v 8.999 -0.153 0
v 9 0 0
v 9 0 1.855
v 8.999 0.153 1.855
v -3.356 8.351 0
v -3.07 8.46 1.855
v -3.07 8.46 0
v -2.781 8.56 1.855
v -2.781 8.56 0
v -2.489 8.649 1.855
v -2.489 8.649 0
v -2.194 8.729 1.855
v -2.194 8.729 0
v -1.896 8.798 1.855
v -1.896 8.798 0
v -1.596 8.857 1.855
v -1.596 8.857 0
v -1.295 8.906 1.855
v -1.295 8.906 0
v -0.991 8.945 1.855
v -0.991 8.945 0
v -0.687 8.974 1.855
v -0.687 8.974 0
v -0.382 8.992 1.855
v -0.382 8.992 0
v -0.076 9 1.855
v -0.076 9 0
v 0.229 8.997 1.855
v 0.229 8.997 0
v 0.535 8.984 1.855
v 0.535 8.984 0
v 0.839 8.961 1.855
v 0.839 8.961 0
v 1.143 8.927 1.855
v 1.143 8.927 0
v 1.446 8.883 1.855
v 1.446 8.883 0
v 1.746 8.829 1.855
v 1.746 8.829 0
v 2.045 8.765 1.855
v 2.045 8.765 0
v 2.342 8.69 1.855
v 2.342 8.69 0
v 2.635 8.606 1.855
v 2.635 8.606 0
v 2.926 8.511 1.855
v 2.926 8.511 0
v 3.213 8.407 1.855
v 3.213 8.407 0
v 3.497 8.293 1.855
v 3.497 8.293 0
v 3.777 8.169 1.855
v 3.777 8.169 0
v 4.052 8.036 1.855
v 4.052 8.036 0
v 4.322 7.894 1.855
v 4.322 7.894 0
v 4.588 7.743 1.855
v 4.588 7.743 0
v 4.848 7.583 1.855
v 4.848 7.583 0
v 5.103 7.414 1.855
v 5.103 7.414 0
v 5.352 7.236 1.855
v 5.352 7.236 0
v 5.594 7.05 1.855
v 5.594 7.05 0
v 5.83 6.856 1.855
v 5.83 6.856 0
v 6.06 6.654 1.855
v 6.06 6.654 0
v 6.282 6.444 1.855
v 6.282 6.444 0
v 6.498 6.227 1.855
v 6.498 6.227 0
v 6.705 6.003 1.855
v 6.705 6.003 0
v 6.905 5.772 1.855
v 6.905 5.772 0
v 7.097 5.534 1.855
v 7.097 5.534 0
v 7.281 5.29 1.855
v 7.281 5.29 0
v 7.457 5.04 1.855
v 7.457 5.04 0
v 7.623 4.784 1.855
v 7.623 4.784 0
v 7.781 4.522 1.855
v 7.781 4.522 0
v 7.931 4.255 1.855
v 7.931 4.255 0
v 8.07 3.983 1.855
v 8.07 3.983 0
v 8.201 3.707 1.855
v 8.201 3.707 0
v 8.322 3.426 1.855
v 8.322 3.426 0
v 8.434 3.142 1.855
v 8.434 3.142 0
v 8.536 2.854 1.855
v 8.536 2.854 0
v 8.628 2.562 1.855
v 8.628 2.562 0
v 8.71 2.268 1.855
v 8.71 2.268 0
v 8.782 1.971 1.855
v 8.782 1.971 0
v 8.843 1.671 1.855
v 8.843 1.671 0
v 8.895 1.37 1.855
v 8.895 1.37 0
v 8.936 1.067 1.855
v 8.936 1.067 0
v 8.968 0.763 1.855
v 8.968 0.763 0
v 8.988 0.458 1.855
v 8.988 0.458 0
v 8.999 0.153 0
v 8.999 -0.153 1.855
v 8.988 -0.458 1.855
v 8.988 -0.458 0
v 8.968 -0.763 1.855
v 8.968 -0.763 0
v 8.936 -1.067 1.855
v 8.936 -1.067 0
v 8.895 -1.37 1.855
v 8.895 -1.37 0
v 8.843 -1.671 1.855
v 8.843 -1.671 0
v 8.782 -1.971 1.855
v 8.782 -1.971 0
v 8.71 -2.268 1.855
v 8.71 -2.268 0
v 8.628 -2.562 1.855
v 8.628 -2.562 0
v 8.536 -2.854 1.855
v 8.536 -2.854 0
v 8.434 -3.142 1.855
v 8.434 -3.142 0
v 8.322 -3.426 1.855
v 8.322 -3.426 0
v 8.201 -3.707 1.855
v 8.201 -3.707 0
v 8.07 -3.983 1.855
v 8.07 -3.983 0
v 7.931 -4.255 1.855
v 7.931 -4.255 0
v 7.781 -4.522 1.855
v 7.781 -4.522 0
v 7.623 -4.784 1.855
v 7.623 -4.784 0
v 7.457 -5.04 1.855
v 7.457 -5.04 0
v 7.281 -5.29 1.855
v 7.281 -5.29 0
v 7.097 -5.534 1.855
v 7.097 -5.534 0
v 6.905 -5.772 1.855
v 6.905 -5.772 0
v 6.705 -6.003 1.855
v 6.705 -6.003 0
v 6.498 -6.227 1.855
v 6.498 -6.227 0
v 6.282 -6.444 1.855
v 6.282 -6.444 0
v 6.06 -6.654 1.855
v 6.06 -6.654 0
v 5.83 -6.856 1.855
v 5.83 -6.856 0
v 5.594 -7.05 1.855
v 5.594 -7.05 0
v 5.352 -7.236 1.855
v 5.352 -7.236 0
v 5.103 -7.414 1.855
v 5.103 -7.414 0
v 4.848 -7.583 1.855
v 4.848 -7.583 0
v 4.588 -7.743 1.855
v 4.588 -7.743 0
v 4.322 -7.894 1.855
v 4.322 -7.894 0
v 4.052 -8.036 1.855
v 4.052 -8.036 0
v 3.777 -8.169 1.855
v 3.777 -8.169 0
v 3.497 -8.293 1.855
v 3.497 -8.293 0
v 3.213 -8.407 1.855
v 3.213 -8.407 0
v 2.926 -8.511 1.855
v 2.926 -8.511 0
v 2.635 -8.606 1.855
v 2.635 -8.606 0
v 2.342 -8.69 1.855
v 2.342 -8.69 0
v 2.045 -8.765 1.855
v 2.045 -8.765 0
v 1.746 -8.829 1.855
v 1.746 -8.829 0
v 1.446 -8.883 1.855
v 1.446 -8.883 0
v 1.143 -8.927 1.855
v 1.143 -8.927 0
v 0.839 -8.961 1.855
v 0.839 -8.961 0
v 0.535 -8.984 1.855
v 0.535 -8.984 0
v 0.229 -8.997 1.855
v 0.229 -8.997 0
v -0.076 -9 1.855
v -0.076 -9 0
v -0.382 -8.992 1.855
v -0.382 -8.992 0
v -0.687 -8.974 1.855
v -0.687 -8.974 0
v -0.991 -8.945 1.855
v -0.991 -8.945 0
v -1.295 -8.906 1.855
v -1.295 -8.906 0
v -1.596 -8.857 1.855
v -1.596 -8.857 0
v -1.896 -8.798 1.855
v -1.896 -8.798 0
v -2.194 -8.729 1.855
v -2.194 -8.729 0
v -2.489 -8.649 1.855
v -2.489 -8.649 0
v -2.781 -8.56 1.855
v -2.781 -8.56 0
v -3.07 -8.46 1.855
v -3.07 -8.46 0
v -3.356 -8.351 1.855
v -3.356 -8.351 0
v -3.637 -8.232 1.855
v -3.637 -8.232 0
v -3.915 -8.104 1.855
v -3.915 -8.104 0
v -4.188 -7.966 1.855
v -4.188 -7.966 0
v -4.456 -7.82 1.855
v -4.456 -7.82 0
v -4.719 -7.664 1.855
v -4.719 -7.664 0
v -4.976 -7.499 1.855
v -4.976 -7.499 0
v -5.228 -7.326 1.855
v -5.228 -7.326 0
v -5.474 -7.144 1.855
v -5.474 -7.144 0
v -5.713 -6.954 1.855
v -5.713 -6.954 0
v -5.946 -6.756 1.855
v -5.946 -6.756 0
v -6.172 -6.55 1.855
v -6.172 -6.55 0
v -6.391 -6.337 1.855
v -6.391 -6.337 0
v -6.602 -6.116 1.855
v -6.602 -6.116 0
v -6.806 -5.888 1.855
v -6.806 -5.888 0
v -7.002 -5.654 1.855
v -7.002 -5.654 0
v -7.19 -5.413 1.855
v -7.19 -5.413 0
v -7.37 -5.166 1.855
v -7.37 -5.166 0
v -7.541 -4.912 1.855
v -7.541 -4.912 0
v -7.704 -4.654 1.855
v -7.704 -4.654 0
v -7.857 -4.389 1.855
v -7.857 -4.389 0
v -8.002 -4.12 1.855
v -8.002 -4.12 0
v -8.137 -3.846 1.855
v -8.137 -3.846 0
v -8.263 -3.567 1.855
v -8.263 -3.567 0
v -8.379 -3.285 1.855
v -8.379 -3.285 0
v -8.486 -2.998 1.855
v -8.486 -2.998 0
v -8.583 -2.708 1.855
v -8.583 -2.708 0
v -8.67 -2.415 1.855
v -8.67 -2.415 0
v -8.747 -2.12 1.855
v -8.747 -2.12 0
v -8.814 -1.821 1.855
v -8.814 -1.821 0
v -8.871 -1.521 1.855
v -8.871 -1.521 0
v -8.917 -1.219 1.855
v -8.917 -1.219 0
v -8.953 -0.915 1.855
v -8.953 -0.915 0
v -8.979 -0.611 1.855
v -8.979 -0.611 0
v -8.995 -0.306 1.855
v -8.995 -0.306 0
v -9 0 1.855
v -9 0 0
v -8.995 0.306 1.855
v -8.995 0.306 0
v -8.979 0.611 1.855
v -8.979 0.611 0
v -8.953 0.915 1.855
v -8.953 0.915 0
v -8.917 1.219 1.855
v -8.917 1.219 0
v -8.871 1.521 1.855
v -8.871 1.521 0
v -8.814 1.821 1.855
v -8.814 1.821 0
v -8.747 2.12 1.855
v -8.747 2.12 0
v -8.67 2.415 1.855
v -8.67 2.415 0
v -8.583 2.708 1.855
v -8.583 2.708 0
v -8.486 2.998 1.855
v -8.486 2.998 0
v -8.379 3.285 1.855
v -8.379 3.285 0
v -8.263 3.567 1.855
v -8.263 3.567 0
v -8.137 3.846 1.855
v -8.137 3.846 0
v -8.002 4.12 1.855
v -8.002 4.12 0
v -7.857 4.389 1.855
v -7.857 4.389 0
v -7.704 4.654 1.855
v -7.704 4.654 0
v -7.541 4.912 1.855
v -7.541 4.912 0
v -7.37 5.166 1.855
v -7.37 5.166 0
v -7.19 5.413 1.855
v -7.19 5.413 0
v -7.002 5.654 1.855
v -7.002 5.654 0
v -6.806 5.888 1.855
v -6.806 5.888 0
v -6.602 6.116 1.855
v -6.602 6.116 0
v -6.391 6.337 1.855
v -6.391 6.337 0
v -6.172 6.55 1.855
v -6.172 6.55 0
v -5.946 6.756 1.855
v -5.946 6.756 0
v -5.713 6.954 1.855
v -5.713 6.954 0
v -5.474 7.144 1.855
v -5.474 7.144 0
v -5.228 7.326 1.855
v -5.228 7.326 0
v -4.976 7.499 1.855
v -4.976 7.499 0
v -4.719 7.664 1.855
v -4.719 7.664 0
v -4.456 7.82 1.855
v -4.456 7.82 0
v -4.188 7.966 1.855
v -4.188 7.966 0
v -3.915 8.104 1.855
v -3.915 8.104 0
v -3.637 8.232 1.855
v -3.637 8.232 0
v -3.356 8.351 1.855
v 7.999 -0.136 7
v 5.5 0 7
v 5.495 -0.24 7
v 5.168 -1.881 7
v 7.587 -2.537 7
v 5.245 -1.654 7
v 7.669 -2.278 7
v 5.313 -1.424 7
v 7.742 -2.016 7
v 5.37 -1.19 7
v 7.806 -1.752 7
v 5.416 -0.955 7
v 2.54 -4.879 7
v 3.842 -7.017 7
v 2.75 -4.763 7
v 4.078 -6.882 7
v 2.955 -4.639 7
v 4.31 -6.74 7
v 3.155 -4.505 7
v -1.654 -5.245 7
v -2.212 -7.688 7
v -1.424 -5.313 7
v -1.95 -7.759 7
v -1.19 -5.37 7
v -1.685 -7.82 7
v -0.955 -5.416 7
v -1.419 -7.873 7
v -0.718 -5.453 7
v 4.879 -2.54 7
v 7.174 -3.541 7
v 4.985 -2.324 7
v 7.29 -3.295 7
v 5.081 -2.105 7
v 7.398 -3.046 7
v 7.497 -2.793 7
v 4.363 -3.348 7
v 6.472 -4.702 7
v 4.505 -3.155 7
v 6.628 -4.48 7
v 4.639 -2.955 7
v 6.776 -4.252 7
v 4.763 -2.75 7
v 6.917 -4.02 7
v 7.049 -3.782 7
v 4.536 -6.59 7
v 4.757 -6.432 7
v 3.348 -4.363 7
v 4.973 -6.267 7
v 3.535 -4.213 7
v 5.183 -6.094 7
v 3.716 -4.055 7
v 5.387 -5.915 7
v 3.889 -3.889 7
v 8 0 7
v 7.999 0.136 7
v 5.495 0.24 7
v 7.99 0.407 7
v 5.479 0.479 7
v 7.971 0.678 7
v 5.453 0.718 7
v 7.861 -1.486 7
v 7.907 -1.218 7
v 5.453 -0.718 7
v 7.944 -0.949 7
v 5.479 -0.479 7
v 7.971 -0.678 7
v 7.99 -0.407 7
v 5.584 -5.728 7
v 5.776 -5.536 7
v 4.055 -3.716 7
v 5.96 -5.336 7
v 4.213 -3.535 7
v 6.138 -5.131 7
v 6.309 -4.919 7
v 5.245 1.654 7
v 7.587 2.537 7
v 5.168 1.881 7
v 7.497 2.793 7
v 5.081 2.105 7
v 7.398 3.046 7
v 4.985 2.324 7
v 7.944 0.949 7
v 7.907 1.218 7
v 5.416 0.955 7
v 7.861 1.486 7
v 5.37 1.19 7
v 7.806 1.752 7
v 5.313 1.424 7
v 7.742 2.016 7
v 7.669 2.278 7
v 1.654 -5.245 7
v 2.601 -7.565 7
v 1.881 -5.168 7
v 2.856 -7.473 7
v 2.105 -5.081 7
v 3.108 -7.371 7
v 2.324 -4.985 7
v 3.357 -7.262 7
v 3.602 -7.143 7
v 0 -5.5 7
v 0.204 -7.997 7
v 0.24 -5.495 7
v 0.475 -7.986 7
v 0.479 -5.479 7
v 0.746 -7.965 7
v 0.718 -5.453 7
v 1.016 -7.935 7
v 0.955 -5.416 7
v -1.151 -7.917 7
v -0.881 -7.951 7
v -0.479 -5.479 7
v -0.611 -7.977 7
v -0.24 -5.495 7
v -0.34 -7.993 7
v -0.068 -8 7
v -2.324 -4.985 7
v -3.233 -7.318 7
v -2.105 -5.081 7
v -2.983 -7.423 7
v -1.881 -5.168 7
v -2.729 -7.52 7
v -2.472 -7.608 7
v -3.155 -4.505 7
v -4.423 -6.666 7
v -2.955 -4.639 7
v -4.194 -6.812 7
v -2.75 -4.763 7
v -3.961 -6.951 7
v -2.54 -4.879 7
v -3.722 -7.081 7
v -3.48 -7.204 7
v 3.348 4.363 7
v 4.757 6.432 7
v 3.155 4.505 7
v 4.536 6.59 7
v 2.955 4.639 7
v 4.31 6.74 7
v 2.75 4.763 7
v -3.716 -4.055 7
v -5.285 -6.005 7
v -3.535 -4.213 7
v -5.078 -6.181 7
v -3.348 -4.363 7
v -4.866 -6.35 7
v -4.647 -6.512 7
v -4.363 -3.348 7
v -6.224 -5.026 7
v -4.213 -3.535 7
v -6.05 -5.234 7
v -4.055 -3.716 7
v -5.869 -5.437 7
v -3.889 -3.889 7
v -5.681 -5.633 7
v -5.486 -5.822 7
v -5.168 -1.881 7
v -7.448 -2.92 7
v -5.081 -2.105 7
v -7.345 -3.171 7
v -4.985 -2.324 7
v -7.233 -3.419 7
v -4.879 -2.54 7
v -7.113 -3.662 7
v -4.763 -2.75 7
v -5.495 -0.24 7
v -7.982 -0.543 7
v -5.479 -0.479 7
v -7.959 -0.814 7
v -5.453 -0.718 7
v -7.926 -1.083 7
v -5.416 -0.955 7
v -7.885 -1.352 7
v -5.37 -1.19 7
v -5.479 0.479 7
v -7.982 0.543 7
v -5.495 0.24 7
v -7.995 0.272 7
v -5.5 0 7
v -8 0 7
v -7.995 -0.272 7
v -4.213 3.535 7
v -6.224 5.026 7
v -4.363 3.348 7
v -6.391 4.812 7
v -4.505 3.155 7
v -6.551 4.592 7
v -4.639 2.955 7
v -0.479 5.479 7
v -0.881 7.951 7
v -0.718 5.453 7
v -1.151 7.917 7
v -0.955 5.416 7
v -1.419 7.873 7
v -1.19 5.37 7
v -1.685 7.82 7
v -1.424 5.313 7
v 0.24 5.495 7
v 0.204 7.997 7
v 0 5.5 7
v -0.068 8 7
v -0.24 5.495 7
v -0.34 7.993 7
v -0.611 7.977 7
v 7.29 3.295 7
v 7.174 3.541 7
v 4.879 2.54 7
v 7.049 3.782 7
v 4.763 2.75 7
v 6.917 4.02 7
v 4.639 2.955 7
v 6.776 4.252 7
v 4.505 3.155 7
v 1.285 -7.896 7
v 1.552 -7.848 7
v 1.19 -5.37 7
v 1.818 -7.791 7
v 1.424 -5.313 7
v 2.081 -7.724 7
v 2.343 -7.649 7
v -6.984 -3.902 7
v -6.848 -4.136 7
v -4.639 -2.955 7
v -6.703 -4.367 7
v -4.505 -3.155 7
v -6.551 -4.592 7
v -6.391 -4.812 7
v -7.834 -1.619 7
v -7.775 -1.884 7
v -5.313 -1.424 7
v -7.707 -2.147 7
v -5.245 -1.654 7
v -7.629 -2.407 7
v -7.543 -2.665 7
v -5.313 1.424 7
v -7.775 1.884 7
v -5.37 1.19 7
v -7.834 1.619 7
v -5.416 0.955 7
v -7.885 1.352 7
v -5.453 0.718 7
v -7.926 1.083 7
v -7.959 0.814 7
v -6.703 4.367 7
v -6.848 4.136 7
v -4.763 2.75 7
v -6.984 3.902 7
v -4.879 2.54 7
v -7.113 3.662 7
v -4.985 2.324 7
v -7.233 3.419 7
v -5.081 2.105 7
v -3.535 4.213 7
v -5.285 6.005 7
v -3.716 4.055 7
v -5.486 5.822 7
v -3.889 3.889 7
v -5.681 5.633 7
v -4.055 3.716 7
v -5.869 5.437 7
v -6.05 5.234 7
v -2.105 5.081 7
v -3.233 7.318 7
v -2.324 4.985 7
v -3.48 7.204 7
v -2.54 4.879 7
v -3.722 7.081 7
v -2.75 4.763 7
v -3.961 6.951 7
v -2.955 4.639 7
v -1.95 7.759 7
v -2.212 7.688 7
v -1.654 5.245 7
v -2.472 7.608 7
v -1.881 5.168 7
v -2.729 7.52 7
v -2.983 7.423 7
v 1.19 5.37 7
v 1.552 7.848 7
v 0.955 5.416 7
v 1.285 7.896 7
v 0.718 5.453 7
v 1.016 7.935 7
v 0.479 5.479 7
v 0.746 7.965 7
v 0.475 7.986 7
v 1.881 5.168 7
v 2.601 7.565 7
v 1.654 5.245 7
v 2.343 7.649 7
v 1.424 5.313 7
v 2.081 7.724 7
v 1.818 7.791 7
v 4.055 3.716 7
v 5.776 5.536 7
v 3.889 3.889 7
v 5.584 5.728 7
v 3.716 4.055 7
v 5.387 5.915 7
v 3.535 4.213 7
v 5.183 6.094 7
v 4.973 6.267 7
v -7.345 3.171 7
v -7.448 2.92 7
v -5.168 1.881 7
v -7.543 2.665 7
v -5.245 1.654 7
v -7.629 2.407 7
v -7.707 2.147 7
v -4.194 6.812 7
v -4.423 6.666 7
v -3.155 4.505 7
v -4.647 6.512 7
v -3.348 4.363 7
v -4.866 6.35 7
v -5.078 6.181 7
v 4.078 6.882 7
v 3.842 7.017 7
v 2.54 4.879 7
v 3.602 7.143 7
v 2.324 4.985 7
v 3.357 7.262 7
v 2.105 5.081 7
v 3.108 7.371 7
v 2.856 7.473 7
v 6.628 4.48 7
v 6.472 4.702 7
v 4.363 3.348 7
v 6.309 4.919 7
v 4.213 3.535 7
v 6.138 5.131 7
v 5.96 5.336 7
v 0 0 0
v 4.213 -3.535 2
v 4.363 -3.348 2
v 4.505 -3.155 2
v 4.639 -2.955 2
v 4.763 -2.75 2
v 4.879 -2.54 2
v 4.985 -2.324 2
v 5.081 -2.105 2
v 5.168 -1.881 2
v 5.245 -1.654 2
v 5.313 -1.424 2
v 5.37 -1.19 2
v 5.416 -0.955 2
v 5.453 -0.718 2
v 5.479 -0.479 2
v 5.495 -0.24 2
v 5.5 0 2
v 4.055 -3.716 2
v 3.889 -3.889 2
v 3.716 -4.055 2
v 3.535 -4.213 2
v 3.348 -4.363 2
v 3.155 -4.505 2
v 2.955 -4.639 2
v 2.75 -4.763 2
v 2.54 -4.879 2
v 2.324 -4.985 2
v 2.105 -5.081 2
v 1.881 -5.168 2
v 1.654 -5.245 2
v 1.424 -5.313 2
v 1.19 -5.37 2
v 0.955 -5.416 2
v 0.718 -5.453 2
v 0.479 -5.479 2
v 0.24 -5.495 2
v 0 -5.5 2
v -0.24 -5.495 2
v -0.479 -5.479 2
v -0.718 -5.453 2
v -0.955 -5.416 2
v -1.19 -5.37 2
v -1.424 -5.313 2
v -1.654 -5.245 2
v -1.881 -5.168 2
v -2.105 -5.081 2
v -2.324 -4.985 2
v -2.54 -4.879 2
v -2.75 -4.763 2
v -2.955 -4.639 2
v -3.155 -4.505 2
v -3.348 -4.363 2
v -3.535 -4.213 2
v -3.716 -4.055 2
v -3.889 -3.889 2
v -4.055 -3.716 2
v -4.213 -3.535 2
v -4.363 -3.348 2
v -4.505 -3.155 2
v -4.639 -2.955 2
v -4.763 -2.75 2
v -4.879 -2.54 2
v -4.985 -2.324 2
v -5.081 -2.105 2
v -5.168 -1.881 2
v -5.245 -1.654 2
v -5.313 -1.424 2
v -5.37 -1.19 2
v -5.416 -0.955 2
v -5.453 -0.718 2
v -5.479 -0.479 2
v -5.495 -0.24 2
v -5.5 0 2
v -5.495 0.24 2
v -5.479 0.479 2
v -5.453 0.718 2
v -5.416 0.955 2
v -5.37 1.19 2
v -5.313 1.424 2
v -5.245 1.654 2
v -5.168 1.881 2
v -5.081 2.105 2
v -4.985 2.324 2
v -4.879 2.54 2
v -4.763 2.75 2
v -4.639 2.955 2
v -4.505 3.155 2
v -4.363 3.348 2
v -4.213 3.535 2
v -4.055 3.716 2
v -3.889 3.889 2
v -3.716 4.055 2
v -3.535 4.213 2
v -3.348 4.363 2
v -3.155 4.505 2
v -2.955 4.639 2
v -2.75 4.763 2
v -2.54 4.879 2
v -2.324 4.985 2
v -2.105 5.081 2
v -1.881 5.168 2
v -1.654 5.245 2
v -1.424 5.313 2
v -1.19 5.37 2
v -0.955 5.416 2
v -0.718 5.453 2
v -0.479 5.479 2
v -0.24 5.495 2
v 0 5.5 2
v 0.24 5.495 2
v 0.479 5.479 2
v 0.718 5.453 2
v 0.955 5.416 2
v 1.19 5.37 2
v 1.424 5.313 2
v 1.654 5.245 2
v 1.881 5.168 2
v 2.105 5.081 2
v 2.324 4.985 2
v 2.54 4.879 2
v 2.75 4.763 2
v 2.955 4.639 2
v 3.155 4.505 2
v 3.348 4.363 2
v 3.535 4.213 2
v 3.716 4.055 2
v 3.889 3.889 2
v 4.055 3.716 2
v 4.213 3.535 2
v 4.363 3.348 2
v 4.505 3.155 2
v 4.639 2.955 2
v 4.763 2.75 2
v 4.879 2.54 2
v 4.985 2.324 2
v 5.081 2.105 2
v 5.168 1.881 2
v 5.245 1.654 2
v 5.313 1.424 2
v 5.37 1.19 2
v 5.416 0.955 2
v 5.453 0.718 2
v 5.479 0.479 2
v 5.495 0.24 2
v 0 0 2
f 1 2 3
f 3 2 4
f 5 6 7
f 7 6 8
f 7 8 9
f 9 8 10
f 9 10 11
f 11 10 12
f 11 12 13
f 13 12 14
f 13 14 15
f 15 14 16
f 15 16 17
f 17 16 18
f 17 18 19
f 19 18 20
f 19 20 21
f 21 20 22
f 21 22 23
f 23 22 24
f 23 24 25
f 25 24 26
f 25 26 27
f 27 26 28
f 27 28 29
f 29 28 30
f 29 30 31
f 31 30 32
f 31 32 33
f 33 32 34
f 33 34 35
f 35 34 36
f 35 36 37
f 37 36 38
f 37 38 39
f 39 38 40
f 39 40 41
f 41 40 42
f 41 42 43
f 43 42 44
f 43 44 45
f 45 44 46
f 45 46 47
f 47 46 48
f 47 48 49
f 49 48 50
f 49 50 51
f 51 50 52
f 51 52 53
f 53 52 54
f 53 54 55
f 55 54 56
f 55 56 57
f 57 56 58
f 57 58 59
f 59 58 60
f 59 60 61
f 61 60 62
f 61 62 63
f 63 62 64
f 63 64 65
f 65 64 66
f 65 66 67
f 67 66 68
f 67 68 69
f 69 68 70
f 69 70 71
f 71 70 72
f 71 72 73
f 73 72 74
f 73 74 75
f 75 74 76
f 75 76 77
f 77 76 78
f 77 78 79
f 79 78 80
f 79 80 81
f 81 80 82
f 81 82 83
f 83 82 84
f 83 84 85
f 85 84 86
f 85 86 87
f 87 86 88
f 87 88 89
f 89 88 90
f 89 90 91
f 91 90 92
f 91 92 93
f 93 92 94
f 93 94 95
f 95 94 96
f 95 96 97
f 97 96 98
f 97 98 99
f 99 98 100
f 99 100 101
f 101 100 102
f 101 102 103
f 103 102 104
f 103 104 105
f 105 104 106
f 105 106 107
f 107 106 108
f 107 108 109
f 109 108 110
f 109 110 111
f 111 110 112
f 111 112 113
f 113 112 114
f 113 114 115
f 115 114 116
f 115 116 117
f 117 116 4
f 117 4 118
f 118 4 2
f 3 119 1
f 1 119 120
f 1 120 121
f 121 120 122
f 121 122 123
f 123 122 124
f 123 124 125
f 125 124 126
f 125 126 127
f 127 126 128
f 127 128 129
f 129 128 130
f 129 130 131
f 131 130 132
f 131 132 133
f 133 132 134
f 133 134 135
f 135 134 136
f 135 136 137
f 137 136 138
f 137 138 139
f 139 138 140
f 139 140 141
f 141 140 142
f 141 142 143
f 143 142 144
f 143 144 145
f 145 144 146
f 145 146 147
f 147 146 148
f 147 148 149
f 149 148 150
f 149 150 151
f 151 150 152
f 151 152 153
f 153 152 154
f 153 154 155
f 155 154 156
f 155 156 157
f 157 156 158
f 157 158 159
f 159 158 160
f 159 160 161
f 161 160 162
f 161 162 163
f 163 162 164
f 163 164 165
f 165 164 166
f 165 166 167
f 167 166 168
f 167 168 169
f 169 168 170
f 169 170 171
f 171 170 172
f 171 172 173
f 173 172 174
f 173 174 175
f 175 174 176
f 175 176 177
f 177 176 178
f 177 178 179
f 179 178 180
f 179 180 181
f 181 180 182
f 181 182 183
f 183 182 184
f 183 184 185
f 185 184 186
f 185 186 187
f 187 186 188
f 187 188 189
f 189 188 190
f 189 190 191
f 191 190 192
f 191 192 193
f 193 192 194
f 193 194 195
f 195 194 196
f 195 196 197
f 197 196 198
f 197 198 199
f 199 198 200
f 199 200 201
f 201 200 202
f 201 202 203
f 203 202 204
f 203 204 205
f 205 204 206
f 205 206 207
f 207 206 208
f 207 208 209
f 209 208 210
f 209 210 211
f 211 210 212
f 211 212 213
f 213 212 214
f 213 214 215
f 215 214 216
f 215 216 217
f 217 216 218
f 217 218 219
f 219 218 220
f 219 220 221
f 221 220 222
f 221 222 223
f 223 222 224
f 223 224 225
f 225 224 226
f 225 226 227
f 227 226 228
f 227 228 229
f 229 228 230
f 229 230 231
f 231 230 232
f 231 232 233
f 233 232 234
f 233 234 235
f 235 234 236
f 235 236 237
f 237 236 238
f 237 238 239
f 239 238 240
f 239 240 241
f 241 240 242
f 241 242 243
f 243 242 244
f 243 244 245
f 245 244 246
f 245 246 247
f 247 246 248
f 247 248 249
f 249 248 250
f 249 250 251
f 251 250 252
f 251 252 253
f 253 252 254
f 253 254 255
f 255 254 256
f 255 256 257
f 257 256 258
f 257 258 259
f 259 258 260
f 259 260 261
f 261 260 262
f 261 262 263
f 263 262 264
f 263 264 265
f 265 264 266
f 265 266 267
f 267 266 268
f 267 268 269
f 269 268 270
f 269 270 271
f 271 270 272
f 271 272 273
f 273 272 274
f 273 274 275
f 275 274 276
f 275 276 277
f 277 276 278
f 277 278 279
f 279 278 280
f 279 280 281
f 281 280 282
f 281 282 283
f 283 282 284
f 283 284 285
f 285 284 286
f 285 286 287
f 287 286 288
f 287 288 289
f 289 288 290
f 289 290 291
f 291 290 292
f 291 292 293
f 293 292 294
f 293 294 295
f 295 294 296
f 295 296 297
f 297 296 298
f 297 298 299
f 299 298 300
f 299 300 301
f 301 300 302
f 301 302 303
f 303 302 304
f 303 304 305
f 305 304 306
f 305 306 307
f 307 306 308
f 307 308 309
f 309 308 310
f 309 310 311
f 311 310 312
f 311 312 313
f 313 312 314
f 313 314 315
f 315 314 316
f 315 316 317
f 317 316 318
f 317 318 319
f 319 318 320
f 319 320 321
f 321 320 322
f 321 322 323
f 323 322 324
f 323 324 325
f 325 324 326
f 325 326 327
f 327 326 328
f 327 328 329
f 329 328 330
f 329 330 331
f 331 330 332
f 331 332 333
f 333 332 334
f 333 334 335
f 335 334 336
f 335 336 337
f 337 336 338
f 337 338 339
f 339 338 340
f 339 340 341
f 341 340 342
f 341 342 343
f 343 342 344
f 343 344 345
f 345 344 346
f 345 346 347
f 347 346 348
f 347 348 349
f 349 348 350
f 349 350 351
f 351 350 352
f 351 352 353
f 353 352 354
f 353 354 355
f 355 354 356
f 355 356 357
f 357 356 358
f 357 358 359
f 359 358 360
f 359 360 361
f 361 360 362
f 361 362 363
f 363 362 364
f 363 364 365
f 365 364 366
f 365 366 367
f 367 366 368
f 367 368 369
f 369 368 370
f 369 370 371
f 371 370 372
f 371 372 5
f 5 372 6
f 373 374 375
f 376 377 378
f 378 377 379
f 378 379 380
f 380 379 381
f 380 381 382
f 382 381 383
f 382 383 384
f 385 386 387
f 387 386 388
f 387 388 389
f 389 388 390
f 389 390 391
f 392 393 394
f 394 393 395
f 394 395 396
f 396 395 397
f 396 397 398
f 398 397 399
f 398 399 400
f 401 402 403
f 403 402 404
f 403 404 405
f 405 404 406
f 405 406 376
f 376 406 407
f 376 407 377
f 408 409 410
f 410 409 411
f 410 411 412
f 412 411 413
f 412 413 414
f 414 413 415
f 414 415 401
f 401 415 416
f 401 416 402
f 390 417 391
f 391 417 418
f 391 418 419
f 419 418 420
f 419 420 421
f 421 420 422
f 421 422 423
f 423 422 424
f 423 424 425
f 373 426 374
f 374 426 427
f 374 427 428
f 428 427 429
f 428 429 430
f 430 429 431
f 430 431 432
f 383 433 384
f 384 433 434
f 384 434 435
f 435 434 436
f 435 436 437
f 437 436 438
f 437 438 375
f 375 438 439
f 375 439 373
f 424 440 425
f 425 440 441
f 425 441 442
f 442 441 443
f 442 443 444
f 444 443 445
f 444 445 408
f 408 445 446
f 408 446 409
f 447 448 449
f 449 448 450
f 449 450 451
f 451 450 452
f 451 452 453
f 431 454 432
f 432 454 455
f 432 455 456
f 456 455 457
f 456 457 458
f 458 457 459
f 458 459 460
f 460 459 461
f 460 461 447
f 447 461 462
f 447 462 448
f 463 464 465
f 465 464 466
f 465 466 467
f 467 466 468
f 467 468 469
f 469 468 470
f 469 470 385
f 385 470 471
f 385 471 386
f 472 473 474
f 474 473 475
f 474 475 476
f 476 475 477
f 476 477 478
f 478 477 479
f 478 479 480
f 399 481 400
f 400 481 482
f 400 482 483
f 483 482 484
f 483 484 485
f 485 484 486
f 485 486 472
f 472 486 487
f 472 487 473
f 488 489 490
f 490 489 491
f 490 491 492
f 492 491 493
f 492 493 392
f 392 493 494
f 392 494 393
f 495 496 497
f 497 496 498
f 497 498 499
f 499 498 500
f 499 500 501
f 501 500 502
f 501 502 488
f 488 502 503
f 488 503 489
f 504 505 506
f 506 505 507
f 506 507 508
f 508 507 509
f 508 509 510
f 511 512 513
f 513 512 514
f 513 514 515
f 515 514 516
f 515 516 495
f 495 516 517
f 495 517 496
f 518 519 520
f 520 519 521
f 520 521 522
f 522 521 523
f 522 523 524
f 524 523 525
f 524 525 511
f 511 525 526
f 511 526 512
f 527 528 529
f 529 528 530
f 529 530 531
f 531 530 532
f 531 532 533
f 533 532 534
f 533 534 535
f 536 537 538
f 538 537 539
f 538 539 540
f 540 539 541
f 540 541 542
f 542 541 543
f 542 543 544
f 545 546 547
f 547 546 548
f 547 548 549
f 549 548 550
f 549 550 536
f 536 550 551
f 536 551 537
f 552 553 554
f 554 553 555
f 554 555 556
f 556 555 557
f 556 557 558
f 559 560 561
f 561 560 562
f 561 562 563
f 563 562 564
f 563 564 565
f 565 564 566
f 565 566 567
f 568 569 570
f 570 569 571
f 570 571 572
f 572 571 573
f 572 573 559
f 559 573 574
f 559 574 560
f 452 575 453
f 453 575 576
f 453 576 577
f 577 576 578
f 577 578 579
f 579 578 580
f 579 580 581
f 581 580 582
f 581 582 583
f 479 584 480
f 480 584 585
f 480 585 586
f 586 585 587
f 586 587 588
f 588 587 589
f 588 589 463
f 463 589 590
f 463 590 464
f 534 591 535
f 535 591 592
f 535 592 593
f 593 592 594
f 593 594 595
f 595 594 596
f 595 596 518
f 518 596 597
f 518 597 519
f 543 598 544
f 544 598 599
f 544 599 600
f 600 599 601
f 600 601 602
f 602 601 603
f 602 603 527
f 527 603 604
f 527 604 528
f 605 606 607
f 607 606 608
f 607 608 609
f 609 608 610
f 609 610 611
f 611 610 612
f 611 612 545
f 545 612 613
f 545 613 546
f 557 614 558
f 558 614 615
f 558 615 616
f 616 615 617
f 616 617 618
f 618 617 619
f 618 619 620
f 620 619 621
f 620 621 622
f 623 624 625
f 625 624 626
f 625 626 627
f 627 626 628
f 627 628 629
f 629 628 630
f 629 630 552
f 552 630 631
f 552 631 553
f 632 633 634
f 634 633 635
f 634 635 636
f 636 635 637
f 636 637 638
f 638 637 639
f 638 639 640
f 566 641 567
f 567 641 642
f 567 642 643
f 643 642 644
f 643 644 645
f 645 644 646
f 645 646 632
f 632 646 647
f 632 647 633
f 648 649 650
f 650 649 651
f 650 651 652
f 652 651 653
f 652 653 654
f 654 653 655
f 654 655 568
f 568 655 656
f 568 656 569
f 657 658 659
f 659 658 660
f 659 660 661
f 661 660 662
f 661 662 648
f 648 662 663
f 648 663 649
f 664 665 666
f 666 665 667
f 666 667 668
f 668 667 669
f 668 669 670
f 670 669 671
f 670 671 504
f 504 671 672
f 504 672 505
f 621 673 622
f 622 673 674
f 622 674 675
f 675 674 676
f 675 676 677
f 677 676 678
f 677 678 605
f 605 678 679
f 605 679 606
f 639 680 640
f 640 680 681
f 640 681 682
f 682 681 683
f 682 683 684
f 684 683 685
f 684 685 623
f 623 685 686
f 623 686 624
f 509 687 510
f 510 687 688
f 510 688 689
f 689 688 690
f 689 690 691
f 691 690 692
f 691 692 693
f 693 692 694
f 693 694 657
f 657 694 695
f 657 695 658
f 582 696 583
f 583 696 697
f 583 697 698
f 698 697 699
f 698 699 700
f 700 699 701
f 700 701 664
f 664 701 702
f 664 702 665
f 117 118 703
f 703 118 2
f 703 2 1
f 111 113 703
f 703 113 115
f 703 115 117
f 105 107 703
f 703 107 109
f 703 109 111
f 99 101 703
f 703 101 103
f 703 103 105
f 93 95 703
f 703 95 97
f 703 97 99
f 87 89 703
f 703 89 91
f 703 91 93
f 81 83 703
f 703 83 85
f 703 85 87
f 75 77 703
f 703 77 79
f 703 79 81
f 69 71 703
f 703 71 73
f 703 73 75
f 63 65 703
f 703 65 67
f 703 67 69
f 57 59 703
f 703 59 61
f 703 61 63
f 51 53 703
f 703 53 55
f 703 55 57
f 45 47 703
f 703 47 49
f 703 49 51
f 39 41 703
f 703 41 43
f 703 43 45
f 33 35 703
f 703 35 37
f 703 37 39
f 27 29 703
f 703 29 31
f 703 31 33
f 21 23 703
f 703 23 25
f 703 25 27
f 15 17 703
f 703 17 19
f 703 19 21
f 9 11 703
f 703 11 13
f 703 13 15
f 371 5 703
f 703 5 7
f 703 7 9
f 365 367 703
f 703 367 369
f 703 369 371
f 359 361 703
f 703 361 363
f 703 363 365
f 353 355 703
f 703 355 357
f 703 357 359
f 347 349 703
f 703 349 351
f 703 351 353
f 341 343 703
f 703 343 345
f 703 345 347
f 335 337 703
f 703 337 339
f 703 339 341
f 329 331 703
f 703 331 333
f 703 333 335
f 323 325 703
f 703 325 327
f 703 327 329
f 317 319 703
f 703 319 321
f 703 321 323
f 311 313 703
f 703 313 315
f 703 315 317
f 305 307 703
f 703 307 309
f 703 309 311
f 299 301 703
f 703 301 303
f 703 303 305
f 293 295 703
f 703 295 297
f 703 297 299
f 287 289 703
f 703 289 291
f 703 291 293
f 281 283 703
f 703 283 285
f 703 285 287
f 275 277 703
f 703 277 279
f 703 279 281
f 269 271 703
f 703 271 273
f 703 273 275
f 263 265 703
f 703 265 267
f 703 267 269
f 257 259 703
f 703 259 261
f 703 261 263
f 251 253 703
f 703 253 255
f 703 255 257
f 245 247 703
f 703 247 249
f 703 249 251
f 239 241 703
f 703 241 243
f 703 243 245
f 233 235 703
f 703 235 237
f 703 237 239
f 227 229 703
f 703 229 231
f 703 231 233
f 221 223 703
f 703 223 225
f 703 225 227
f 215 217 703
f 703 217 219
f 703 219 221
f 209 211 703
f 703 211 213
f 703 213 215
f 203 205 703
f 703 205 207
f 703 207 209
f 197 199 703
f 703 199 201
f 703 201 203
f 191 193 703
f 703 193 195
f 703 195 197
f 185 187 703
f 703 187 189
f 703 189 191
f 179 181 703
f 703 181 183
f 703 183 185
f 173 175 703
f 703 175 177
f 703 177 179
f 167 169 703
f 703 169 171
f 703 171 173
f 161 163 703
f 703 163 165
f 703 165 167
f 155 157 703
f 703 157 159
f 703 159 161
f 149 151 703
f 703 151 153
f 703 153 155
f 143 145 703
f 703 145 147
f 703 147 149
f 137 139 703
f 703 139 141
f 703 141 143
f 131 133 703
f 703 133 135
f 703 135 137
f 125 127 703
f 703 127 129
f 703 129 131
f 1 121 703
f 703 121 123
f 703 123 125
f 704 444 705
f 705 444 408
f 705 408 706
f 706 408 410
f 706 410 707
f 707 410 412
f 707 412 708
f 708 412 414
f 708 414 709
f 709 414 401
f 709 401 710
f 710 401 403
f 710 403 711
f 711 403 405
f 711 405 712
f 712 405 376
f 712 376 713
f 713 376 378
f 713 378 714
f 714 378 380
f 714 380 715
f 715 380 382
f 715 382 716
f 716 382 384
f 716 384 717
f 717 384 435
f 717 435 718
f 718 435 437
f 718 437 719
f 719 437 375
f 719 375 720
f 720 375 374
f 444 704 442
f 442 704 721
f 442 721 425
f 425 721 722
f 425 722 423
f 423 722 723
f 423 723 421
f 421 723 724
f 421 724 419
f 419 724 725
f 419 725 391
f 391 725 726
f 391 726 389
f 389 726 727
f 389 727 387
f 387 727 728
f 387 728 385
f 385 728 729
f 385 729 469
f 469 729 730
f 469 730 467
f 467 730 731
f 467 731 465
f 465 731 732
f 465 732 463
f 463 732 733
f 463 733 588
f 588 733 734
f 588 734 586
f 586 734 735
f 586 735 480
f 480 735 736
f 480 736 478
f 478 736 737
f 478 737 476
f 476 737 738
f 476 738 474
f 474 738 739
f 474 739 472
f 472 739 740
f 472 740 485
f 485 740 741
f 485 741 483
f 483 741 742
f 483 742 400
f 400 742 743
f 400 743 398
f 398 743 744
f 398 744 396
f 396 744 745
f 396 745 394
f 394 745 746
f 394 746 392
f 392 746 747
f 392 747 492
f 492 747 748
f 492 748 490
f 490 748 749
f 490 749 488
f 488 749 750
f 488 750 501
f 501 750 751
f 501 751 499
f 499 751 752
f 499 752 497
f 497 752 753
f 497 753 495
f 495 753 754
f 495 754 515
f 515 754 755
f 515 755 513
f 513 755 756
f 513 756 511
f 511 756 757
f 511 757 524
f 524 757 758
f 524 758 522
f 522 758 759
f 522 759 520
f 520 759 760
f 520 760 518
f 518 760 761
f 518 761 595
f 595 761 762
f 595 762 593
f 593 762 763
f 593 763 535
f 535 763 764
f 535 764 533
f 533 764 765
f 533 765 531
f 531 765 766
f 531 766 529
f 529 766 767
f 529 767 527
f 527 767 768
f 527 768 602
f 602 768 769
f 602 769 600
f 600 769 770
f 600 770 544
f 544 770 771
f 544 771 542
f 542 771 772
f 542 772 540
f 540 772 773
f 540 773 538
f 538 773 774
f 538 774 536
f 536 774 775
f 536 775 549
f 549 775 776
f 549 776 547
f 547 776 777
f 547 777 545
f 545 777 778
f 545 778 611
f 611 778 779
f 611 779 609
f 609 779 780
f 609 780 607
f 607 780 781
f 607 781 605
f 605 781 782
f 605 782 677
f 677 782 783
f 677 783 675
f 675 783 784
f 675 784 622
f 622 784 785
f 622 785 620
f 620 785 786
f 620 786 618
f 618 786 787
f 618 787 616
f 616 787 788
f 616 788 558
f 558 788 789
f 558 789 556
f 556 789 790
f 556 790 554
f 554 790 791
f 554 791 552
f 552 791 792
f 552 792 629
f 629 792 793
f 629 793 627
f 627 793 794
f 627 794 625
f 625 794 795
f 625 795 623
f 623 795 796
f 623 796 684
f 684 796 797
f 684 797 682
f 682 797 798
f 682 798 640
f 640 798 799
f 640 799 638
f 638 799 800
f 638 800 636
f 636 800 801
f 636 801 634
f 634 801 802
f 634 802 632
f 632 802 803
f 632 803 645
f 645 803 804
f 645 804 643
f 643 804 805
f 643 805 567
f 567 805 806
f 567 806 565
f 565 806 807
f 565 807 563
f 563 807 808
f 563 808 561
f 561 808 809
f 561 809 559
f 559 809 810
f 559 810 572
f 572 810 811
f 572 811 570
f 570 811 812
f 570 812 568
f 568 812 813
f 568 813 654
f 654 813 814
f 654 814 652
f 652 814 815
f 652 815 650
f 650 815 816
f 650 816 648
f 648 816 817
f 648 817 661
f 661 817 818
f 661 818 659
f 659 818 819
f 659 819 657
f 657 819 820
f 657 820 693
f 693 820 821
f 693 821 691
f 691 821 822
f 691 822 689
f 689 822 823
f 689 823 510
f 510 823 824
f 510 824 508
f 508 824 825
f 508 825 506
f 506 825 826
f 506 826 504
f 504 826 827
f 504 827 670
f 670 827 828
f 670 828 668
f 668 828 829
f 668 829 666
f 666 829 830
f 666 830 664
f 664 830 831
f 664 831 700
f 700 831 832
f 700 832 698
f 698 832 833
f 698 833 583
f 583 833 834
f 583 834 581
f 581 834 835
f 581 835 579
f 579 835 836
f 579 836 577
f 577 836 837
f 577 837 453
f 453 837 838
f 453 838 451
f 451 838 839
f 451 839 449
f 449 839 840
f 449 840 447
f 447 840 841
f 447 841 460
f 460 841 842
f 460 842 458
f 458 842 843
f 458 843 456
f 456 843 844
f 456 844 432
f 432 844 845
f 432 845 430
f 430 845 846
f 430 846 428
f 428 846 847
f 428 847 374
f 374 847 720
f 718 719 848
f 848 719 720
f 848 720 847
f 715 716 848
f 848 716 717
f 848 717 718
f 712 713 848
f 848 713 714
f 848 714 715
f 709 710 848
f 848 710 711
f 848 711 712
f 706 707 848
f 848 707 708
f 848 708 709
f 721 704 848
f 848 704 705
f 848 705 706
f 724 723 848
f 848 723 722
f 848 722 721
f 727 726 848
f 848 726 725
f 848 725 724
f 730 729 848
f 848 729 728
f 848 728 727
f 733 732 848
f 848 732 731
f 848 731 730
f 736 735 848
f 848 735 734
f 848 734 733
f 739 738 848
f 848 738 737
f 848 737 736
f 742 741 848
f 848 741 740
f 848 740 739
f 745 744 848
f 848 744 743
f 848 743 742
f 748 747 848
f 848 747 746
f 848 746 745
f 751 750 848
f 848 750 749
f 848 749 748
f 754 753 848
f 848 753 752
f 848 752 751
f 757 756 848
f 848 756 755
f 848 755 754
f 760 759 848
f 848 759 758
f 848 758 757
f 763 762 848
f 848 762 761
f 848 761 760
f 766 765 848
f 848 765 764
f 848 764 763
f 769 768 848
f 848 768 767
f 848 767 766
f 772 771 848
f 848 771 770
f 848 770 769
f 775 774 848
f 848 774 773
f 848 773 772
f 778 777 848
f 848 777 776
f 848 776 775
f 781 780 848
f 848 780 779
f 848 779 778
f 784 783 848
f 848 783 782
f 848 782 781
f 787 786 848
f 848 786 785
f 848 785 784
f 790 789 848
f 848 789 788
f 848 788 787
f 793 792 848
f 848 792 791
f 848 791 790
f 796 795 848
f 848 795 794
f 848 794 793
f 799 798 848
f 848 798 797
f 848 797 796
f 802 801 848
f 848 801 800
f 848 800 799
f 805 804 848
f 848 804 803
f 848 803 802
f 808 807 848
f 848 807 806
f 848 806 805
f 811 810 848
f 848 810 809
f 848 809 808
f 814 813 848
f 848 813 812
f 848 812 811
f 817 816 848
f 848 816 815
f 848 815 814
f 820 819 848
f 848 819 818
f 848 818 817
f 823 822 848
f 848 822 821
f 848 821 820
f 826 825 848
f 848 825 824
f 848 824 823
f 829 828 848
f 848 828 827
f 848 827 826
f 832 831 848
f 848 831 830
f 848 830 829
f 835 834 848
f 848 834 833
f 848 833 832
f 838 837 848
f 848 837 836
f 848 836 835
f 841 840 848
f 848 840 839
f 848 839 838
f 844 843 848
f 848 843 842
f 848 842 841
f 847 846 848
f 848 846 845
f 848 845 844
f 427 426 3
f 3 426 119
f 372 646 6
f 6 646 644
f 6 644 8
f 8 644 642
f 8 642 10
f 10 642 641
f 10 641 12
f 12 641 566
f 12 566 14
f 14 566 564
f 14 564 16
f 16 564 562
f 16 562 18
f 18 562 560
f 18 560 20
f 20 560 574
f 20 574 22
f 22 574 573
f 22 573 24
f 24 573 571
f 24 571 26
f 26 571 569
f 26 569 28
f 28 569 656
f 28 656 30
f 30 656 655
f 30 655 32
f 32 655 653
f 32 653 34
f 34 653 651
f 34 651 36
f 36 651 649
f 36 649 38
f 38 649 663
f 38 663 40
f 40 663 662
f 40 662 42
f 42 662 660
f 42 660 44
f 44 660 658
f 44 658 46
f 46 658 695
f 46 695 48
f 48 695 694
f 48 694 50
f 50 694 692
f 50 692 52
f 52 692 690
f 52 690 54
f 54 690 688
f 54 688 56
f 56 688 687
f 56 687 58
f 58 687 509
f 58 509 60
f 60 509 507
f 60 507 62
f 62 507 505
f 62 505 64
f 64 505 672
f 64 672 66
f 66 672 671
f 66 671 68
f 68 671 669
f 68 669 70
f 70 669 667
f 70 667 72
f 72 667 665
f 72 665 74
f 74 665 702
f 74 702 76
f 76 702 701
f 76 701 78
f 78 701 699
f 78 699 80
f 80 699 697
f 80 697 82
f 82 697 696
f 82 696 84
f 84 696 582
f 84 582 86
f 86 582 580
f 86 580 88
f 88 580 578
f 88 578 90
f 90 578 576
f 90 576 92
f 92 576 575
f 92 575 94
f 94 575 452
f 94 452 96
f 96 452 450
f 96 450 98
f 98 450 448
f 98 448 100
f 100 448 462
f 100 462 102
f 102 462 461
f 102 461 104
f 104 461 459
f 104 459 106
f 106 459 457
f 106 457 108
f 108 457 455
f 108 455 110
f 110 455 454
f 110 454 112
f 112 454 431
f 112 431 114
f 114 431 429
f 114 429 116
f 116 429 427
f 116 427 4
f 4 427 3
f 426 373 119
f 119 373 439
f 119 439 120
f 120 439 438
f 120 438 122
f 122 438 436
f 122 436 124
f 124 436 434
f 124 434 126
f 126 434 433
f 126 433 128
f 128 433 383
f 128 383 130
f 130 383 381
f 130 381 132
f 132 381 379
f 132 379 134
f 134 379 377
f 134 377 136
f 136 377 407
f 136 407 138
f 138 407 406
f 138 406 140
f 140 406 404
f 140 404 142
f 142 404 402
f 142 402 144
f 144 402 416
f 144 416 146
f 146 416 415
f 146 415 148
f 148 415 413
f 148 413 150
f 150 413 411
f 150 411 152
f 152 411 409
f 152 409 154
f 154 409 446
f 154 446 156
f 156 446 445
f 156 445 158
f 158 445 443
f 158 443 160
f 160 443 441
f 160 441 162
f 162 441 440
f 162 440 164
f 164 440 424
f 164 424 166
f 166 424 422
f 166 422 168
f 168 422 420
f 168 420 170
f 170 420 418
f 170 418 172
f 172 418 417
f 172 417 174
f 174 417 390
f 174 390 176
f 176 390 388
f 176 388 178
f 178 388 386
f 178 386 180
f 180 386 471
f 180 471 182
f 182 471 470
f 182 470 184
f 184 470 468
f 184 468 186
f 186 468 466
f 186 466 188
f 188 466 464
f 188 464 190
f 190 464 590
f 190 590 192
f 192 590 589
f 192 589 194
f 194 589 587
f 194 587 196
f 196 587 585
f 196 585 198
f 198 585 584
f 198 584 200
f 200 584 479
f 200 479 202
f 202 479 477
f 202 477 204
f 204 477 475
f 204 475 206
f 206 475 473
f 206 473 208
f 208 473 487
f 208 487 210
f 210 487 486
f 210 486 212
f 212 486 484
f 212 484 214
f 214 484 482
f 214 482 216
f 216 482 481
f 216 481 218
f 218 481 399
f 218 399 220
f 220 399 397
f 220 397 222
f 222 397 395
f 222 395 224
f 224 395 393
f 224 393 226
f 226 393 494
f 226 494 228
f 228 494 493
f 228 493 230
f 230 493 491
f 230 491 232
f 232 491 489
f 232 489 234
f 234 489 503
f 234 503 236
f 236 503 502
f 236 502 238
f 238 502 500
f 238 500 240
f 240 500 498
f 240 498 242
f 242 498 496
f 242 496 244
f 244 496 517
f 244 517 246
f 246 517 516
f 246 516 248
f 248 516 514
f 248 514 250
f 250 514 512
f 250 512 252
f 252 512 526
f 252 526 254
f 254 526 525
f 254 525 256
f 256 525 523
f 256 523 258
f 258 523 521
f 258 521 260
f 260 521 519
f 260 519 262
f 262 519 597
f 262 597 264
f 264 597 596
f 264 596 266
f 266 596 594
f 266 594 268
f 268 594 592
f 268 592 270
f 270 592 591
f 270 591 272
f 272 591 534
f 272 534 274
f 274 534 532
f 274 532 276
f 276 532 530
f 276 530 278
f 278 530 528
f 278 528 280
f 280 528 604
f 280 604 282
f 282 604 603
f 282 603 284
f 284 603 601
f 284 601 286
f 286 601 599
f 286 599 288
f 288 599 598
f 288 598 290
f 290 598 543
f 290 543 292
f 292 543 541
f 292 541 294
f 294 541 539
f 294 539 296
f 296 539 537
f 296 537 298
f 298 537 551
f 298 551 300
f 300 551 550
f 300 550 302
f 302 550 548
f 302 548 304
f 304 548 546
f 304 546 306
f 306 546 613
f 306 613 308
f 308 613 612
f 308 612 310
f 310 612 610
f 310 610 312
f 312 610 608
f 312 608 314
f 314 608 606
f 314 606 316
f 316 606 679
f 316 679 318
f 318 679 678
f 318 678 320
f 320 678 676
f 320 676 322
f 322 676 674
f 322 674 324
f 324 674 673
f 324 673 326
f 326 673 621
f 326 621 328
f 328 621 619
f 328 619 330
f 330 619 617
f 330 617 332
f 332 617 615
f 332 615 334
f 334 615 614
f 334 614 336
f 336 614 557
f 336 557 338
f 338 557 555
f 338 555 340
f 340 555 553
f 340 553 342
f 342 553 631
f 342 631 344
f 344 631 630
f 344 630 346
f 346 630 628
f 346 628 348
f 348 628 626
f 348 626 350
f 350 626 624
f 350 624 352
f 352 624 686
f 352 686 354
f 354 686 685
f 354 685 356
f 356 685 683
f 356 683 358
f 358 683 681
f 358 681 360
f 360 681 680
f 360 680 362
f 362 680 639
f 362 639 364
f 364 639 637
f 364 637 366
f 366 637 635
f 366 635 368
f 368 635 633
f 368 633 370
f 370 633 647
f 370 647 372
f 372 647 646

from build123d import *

# Parameters (mm, degrees)
SKETCH1_R           = 9
BOSS_EXTRUDE1_DEPTH = 7
SKETCH2_R           = 5.5
CUT_EXTRUDE1_DEPTH  = 5
CHAMFER1_SIZE       = 1
CHAMFER1_SIZE2      = 5.144554016


with BuildPart() as part:
    # Sketch1 → Boss-Extrude1 (new body)
    with BuildSketch(Plane.XY):
        Circle(SKETCH1_R)
    extrude(amount=BOSS_EXTRUDE1_DEPTH)

    # Sketch2 → Cut-Extrude1 (cut)
    with BuildSketch(Plane.XY.offset(7)):
        Circle(SKETCH2_R)
    extrude(amount=-CUT_EXTRUDE1_DEPTH, mode=Mode.SUBTRACT)

    # Chamfer1
    chamfer1_edges = [part.edges().sort_by_distance(p)[0] for p in [
        (-9, 0, 7),
    ]]
    chamfer1_side = [part.faces().sort_by_distance(p)[0] for p in [
        (-8.745441559, 0, 7),
    ]]
    chamfer(chamfer1_edges, length=CHAMFER1_SIZE, length2=CHAMFER1_SIZE2, reference=chamfer1_side[0])


solid = part.part
